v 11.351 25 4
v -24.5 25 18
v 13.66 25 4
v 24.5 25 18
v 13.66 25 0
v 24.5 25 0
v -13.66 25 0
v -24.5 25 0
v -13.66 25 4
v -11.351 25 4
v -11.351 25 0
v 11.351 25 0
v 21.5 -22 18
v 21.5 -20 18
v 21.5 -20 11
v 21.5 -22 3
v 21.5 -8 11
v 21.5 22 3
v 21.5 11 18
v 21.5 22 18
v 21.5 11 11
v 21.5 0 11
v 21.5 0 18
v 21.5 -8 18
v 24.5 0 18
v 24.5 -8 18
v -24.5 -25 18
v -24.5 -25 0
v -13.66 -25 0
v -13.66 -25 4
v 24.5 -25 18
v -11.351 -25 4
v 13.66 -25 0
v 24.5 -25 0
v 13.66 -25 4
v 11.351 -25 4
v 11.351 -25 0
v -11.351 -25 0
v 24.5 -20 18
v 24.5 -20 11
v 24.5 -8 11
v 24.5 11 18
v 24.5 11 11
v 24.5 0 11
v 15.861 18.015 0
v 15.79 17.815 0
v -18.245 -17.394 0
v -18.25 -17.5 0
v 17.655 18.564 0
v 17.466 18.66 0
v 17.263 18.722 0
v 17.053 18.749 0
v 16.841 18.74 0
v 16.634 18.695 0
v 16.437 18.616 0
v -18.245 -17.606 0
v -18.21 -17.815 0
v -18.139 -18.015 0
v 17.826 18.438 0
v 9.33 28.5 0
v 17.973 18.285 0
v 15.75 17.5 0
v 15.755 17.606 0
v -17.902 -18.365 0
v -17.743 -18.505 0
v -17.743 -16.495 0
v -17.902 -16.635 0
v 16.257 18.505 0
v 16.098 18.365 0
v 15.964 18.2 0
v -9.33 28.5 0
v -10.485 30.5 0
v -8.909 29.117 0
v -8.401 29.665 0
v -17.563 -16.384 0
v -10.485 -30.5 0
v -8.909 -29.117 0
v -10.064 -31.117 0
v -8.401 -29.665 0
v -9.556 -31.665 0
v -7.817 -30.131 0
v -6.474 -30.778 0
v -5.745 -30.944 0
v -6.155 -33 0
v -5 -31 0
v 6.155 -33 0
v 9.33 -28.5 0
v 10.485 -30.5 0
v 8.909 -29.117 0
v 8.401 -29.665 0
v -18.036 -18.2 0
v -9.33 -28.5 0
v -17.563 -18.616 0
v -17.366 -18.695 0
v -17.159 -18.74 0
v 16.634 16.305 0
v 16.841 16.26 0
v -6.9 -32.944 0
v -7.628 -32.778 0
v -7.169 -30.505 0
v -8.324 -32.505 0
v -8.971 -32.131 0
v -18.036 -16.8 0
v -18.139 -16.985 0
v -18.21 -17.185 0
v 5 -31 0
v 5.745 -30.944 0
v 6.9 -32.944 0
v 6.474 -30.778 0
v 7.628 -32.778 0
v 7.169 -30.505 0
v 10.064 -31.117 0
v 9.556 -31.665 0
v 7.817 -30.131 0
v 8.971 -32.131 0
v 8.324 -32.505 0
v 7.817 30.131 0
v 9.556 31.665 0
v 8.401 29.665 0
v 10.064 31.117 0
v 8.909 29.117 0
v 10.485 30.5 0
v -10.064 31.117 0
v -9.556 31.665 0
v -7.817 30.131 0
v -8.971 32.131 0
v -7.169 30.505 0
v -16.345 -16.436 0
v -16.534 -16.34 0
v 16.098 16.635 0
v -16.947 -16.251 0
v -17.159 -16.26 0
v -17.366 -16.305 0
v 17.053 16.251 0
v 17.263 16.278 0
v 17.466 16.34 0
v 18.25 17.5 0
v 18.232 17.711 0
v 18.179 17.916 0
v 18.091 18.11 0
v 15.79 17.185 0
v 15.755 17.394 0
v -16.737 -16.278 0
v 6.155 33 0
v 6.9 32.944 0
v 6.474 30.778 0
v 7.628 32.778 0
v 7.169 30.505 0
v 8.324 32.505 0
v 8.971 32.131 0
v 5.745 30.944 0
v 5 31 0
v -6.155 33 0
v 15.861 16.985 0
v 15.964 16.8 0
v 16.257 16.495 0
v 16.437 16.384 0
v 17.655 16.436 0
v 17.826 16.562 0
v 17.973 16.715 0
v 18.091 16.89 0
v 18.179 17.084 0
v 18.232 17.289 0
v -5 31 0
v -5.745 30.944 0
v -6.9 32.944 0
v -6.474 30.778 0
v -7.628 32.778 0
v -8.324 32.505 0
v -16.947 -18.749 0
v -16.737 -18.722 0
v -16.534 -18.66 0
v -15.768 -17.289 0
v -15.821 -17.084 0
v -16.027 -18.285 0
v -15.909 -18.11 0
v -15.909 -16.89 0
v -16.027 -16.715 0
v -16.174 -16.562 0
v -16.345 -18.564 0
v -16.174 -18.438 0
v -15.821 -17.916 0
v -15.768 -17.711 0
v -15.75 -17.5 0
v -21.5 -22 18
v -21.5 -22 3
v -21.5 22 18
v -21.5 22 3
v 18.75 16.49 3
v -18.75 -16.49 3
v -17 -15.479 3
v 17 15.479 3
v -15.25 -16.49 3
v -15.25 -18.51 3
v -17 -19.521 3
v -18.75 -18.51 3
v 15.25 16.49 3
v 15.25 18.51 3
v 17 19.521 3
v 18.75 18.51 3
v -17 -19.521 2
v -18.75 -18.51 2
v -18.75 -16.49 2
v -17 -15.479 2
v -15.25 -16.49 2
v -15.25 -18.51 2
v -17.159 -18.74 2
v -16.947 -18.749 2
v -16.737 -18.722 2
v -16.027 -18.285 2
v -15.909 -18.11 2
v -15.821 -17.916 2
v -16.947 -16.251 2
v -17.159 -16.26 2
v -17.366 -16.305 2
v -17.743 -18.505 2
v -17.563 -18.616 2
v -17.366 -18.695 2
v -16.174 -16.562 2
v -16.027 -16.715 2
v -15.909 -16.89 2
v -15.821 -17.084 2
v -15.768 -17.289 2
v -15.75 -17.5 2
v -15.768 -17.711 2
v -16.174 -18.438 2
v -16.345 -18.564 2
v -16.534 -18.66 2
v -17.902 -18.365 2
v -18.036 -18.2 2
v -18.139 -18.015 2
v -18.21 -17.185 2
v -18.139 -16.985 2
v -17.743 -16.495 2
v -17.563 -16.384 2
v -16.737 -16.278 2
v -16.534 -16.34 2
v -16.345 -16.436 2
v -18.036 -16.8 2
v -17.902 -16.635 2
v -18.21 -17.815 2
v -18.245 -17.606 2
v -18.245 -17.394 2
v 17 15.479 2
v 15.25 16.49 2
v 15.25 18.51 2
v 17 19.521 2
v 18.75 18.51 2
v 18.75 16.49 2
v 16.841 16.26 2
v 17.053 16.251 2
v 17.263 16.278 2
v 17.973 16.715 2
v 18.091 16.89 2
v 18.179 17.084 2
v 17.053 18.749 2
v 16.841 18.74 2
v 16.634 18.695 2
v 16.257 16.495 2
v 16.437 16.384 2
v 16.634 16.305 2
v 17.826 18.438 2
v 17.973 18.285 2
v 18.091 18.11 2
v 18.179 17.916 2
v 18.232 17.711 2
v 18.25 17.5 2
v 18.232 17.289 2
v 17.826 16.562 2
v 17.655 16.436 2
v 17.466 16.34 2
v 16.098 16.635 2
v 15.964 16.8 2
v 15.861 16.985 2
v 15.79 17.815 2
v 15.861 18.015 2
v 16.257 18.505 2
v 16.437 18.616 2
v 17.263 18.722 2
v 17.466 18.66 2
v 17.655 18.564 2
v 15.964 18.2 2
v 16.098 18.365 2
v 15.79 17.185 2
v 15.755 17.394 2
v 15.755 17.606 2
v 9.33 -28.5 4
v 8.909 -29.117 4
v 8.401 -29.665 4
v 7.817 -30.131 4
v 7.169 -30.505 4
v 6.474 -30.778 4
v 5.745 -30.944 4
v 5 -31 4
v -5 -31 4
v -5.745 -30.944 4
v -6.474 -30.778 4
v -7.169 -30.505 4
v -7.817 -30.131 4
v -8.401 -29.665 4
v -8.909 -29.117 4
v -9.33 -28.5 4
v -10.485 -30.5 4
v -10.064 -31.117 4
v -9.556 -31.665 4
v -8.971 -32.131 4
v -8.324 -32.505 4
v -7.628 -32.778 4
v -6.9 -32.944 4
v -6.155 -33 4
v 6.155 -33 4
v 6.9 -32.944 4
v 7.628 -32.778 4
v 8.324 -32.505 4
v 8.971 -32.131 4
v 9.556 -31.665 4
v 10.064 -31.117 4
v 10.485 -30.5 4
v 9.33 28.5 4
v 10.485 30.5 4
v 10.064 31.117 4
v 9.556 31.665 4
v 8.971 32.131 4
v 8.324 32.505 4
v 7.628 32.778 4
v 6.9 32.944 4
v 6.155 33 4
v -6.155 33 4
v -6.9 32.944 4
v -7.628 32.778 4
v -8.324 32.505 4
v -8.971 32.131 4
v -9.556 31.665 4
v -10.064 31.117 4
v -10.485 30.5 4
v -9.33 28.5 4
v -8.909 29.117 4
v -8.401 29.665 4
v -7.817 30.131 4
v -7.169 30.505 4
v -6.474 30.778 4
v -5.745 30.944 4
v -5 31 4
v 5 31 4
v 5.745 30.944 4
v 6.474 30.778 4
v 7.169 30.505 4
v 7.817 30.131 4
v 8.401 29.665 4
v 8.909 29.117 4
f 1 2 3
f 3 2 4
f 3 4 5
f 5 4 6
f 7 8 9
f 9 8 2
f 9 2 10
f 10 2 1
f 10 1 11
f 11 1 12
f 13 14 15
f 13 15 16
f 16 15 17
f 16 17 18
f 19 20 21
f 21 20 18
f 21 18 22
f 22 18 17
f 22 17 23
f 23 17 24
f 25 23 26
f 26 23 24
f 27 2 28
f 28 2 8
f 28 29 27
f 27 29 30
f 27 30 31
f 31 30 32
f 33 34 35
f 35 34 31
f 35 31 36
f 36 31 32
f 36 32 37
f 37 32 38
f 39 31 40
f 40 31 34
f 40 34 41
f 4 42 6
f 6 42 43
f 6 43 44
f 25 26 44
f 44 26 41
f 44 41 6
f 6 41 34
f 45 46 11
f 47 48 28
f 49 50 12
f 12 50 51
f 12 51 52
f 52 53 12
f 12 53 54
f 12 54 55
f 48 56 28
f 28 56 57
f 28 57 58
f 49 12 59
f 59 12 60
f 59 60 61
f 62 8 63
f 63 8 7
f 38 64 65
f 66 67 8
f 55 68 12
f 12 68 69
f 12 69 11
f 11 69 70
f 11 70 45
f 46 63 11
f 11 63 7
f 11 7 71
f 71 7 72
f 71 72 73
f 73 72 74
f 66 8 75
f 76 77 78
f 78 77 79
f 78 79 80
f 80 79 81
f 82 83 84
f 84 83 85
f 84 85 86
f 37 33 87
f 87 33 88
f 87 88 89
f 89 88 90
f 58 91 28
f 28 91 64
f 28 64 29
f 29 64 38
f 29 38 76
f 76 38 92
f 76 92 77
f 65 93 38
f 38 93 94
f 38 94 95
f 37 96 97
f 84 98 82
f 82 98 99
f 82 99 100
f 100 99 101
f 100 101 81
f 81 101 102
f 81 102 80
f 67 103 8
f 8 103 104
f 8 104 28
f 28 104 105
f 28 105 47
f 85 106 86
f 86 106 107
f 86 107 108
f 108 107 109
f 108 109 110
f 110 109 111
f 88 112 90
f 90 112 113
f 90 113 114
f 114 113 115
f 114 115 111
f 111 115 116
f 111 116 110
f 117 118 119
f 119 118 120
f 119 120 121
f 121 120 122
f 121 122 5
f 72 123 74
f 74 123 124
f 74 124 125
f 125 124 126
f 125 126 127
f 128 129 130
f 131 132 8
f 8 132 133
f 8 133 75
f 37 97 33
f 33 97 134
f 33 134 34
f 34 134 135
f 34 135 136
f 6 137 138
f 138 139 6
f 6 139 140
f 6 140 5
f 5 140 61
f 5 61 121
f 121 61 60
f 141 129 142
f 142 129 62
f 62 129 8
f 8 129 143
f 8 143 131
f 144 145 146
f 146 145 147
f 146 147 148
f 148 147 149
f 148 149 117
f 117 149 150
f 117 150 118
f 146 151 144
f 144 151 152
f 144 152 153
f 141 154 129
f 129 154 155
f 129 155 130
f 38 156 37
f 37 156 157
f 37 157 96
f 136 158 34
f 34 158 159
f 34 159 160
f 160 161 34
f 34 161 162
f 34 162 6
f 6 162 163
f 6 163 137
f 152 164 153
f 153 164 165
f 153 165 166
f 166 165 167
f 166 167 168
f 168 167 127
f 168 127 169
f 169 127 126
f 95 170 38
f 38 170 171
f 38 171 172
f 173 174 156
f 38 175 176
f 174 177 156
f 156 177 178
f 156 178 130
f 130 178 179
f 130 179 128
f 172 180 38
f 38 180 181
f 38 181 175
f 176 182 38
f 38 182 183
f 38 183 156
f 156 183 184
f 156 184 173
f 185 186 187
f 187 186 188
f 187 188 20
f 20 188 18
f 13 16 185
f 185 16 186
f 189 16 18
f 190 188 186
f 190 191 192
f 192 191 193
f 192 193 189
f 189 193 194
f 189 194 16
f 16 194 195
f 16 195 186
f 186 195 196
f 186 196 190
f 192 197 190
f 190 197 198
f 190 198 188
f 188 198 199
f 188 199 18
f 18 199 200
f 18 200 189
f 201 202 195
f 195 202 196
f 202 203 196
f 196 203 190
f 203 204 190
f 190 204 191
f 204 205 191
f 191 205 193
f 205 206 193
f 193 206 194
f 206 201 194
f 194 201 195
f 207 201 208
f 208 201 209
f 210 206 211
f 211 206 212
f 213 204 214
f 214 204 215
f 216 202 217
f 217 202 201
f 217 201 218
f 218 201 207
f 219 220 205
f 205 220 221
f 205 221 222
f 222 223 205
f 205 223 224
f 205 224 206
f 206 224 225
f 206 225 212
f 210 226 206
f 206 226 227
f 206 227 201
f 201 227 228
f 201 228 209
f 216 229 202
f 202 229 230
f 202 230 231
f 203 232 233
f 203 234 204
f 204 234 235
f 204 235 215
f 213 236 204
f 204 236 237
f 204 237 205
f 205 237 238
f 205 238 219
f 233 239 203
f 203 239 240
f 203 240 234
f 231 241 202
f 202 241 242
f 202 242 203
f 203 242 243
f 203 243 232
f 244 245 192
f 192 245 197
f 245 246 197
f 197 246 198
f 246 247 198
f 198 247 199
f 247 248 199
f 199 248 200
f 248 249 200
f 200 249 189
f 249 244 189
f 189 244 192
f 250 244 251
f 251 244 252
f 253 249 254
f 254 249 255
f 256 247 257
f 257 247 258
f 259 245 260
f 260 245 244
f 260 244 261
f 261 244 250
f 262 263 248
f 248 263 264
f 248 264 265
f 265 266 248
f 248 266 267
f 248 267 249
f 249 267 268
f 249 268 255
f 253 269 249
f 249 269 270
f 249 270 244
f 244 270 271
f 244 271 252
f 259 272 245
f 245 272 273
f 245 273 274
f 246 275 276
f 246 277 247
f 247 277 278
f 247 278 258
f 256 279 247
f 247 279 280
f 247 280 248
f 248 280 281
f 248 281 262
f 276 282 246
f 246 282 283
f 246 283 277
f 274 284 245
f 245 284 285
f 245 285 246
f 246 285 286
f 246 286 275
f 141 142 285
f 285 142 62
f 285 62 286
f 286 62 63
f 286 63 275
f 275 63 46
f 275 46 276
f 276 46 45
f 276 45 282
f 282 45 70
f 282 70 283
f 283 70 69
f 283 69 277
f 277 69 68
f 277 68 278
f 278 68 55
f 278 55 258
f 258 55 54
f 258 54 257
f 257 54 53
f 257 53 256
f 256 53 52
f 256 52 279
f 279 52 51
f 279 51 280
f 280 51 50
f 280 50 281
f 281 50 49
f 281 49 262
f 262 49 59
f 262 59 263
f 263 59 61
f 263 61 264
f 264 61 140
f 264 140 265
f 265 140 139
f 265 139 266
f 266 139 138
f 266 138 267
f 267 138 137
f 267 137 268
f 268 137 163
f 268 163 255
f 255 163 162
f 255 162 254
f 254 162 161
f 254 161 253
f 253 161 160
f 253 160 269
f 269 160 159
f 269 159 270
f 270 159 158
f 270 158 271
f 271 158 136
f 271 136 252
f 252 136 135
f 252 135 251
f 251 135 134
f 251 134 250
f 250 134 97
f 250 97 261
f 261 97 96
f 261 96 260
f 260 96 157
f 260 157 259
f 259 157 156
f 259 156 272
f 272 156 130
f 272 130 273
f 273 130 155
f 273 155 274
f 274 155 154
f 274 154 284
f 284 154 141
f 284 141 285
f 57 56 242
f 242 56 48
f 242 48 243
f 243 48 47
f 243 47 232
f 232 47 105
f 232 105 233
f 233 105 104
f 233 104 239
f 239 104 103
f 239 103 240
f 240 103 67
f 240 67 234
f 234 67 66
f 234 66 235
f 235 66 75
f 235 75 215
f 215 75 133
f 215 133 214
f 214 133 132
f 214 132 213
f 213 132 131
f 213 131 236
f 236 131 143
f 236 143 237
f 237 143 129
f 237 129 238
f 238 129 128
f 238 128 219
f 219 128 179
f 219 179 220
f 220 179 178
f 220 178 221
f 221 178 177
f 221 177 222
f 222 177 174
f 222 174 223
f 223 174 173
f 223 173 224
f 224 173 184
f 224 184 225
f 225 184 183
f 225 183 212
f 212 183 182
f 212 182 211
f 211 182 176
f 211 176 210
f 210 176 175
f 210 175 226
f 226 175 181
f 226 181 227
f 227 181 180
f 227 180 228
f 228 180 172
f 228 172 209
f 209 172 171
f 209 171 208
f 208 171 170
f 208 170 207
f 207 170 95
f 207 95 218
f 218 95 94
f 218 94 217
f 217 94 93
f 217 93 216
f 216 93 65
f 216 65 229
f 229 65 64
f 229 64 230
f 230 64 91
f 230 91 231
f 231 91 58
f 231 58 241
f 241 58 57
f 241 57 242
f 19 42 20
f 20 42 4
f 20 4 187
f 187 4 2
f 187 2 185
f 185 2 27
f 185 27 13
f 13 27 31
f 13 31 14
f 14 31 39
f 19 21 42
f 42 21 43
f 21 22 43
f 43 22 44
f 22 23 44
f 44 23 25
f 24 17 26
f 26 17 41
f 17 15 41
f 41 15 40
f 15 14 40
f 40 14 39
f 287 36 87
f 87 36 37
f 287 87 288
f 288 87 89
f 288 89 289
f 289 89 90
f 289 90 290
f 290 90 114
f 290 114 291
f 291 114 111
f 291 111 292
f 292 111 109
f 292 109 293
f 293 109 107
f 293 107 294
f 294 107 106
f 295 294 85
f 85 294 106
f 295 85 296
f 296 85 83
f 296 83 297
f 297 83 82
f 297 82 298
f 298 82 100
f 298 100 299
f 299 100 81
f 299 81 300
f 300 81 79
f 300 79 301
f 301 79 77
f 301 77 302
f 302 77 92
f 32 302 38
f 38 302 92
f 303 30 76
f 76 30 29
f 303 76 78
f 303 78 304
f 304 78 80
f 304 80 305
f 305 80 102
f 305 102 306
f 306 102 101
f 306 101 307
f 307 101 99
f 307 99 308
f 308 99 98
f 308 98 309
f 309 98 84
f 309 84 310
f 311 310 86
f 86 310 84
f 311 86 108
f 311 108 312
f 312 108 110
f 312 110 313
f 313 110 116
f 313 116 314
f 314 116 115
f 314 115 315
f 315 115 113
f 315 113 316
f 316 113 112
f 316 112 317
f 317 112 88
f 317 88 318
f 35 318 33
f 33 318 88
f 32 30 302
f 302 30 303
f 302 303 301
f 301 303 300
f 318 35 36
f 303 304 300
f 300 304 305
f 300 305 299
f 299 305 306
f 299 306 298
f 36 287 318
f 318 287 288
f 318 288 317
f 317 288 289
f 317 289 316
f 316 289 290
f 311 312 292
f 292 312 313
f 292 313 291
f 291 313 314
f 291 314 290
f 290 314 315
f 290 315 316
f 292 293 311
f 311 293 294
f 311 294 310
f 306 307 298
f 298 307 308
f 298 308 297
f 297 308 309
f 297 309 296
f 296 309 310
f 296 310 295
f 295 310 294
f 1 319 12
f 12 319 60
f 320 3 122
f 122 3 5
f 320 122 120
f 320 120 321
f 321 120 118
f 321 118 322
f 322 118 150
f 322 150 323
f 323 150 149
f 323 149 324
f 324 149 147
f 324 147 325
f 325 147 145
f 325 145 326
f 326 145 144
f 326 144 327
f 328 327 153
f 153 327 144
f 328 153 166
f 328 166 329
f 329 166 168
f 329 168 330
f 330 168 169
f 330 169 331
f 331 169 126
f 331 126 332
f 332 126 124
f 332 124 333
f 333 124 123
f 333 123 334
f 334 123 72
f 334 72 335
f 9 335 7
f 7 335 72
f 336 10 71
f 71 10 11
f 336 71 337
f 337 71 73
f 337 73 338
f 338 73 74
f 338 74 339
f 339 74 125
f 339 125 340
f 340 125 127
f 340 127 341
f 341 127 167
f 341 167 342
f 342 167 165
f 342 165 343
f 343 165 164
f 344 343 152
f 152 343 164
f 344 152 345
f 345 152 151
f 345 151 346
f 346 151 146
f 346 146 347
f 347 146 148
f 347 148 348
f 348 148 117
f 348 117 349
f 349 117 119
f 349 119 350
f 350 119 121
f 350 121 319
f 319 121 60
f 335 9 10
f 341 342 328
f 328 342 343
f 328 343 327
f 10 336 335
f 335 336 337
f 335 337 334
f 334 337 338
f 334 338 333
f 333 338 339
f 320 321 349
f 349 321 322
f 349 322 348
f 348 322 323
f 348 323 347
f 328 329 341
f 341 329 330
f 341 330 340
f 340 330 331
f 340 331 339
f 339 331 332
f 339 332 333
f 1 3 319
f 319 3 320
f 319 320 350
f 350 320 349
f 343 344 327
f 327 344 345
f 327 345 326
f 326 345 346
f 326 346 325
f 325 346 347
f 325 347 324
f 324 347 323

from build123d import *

# Parameters (mm, degrees)
SKETCH_1_W          = 49
SKETCH_1_H          = 50
EXTRUDE_1_DEPTH     = 10
SKETCH_3_W          = 43
SKETCH_3_H          = 44
CUT_EXTRUDE_1_DEPTH = 7
CUT_EXTRUDE_2_DEPTH = 1
SKETCH_5_R          = 1.25
CUT_EXTRUDE_3_DEPTH = 3
SKETCH_7_W          = 8
SKETCH_7_H          = 50
EXTRUDE_2_DEPTH     = 3
SKETCH_8_W          = 7
SKETCH_8_H          = 12
SKETCH_8_H_2        = 11
CUT_EXTRUDE_5_DEPTH = 3
EXTRUDE_3_DEPTH     = 8
EXTRUDE_4_DEPTH     = 4


with BuildPart() as part:
    # 草图1 → 凸台-拉伸1 (new body)
    with BuildSketch(Plane.XY):
        Rectangle(SKETCH_1_W, SKETCH_1_H)
    extrude(amount=EXTRUDE_1_DEPTH)

    # 草图3 → 切除-拉伸1 (cut)
    with BuildSketch(Plane.XY.offset(10)):
        Rectangle(SKETCH_3_W, SKETCH_3_H)
    extrude(amount=-CUT_EXTRUDE_1_DEPTH, mode=Mode.SUBTRACT)

    # 草图4 → 切除-拉伸2 (cut)
    with BuildSketch(Plane.XY.offset(3)):
        Polygon((17, 15.479274058), (18.75, 16.489637029), (18.75, 18.510362971), (17, 19.520725942), (15.25, 18.510362971), (15.25, 16.489637029), align=None)
        Polygon((-17, -19.520725942), (-15.25, -18.510362971), (-15.25, -16.489637029), (-17, -15.479274058), (-18.75, -16.489637029), (-18.75, -18.510362971), align=None)
    extrude(amount=-CUT_EXTRUDE_2_DEPTH, mode=Mode.SUBTRACT)

    # 草图5 → 切除-拉伸3 (cut)
    with BuildSketch(Plane.XY.offset(2)):
        with Locations((-17, -17.5)):
            Circle(SKETCH_5_R)
        with Locations((17, 17.5)):
            Circle(SKETCH_5_R)
    extrude(amount=-CUT_EXTRUDE_3_DEPTH, mode=Mode.SUBTRACT)

    # 草图7 → 凸台-拉伸2 (add)
    with BuildSketch(Plane(origin=(24.5, 0, 0), x_dir=(0, 0, -1), z_dir=(1, 0, 0))):
        with Locations((-14, 0)):
            Rectangle(SKETCH_7_W, SKETCH_7_H)
    extrude(amount=-EXTRUDE_2_DEPTH)

    # 草图8 → 切除-拉伸5 (cut)
    with BuildSketch(Plane(origin=(24.5, 0, 0), x_dir=(0, 0, -1), z_dir=(1, 0, 0))):
        with Locations((-14.5, -14)):
            Rectangle(SKETCH_8_W, SKETCH_8_H)
        with Locations((-14.5, 5.5)):
            Rectangle(SKETCH_8_W, SKETCH_8_H_2)
    extrude(amount=-CUT_EXTRUDE_5_DEPTH, mode=Mode.SUBTRACT)

    # 草图9 → 凸台-拉伸3 (add)
    with BuildSketch(Plane.XY.offset(10)):
        Polygon((-24.5, -25), (21.5, -25), (21.5, -22), (-21.5, -22), (-21.5, 22), (21.5, 22), (21.5, 25), (-24.5, 25), align=None)
    extrude(amount=EXTRUDE_3_DEPTH)

    # 草图11 → 凸台-拉伸4 (add)
    with BuildSketch(Plane(origin=(0, 0, 0), x_dir=(-1, 0, 0), z_dir=(0, 0, -1))):
        with BuildLine():
            Line((-13.660254038, -25), (-11.350852961, -25))
            Line((-11.350852961, -25), (-9.330127019, -28.5))
            ThreePointArc((-9.330127019, -28.5), (-7.5, -30.330127019), (-5, -31))
            Line((-5, -31), (5, -31))
            ThreePointArc((5, -31), (7.5, -30.330127019), (9.330127019, -28.5))
            Line((9.330127019, -28.5), (11.350852961, -25))
            Line((11.350852961, -25), (13.660254038, -25))
            Line((13.660254038, -25), (13.082903769, -26))
            Line((13.082903769, -26), (10.484827557, -30.5))
            ThreePointArc((10.484827557, -30.5), (8.654700538, -32.330127019), (6.154700538, -33))
            Line((6.154700538, -33), (-6.154700538, -33))
            ThreePointArc((-6.154700538, -33), (-8.654700538, -32.330127019), (-10.484827557, -30.5))
            Line((-10.484827557, -30.5), (-13.082903769, -26))
            Line((-13.082903769, -26), (-13.660254038, -25))
        make_face()
    extrude_4 = extrude(amount=-EXTRUDE_4_DEPTH)

    # 镜向1: 凸台-拉伸4 across plane
    add(extrude_4.mirror(Plane.ZX))


solid = part.part
